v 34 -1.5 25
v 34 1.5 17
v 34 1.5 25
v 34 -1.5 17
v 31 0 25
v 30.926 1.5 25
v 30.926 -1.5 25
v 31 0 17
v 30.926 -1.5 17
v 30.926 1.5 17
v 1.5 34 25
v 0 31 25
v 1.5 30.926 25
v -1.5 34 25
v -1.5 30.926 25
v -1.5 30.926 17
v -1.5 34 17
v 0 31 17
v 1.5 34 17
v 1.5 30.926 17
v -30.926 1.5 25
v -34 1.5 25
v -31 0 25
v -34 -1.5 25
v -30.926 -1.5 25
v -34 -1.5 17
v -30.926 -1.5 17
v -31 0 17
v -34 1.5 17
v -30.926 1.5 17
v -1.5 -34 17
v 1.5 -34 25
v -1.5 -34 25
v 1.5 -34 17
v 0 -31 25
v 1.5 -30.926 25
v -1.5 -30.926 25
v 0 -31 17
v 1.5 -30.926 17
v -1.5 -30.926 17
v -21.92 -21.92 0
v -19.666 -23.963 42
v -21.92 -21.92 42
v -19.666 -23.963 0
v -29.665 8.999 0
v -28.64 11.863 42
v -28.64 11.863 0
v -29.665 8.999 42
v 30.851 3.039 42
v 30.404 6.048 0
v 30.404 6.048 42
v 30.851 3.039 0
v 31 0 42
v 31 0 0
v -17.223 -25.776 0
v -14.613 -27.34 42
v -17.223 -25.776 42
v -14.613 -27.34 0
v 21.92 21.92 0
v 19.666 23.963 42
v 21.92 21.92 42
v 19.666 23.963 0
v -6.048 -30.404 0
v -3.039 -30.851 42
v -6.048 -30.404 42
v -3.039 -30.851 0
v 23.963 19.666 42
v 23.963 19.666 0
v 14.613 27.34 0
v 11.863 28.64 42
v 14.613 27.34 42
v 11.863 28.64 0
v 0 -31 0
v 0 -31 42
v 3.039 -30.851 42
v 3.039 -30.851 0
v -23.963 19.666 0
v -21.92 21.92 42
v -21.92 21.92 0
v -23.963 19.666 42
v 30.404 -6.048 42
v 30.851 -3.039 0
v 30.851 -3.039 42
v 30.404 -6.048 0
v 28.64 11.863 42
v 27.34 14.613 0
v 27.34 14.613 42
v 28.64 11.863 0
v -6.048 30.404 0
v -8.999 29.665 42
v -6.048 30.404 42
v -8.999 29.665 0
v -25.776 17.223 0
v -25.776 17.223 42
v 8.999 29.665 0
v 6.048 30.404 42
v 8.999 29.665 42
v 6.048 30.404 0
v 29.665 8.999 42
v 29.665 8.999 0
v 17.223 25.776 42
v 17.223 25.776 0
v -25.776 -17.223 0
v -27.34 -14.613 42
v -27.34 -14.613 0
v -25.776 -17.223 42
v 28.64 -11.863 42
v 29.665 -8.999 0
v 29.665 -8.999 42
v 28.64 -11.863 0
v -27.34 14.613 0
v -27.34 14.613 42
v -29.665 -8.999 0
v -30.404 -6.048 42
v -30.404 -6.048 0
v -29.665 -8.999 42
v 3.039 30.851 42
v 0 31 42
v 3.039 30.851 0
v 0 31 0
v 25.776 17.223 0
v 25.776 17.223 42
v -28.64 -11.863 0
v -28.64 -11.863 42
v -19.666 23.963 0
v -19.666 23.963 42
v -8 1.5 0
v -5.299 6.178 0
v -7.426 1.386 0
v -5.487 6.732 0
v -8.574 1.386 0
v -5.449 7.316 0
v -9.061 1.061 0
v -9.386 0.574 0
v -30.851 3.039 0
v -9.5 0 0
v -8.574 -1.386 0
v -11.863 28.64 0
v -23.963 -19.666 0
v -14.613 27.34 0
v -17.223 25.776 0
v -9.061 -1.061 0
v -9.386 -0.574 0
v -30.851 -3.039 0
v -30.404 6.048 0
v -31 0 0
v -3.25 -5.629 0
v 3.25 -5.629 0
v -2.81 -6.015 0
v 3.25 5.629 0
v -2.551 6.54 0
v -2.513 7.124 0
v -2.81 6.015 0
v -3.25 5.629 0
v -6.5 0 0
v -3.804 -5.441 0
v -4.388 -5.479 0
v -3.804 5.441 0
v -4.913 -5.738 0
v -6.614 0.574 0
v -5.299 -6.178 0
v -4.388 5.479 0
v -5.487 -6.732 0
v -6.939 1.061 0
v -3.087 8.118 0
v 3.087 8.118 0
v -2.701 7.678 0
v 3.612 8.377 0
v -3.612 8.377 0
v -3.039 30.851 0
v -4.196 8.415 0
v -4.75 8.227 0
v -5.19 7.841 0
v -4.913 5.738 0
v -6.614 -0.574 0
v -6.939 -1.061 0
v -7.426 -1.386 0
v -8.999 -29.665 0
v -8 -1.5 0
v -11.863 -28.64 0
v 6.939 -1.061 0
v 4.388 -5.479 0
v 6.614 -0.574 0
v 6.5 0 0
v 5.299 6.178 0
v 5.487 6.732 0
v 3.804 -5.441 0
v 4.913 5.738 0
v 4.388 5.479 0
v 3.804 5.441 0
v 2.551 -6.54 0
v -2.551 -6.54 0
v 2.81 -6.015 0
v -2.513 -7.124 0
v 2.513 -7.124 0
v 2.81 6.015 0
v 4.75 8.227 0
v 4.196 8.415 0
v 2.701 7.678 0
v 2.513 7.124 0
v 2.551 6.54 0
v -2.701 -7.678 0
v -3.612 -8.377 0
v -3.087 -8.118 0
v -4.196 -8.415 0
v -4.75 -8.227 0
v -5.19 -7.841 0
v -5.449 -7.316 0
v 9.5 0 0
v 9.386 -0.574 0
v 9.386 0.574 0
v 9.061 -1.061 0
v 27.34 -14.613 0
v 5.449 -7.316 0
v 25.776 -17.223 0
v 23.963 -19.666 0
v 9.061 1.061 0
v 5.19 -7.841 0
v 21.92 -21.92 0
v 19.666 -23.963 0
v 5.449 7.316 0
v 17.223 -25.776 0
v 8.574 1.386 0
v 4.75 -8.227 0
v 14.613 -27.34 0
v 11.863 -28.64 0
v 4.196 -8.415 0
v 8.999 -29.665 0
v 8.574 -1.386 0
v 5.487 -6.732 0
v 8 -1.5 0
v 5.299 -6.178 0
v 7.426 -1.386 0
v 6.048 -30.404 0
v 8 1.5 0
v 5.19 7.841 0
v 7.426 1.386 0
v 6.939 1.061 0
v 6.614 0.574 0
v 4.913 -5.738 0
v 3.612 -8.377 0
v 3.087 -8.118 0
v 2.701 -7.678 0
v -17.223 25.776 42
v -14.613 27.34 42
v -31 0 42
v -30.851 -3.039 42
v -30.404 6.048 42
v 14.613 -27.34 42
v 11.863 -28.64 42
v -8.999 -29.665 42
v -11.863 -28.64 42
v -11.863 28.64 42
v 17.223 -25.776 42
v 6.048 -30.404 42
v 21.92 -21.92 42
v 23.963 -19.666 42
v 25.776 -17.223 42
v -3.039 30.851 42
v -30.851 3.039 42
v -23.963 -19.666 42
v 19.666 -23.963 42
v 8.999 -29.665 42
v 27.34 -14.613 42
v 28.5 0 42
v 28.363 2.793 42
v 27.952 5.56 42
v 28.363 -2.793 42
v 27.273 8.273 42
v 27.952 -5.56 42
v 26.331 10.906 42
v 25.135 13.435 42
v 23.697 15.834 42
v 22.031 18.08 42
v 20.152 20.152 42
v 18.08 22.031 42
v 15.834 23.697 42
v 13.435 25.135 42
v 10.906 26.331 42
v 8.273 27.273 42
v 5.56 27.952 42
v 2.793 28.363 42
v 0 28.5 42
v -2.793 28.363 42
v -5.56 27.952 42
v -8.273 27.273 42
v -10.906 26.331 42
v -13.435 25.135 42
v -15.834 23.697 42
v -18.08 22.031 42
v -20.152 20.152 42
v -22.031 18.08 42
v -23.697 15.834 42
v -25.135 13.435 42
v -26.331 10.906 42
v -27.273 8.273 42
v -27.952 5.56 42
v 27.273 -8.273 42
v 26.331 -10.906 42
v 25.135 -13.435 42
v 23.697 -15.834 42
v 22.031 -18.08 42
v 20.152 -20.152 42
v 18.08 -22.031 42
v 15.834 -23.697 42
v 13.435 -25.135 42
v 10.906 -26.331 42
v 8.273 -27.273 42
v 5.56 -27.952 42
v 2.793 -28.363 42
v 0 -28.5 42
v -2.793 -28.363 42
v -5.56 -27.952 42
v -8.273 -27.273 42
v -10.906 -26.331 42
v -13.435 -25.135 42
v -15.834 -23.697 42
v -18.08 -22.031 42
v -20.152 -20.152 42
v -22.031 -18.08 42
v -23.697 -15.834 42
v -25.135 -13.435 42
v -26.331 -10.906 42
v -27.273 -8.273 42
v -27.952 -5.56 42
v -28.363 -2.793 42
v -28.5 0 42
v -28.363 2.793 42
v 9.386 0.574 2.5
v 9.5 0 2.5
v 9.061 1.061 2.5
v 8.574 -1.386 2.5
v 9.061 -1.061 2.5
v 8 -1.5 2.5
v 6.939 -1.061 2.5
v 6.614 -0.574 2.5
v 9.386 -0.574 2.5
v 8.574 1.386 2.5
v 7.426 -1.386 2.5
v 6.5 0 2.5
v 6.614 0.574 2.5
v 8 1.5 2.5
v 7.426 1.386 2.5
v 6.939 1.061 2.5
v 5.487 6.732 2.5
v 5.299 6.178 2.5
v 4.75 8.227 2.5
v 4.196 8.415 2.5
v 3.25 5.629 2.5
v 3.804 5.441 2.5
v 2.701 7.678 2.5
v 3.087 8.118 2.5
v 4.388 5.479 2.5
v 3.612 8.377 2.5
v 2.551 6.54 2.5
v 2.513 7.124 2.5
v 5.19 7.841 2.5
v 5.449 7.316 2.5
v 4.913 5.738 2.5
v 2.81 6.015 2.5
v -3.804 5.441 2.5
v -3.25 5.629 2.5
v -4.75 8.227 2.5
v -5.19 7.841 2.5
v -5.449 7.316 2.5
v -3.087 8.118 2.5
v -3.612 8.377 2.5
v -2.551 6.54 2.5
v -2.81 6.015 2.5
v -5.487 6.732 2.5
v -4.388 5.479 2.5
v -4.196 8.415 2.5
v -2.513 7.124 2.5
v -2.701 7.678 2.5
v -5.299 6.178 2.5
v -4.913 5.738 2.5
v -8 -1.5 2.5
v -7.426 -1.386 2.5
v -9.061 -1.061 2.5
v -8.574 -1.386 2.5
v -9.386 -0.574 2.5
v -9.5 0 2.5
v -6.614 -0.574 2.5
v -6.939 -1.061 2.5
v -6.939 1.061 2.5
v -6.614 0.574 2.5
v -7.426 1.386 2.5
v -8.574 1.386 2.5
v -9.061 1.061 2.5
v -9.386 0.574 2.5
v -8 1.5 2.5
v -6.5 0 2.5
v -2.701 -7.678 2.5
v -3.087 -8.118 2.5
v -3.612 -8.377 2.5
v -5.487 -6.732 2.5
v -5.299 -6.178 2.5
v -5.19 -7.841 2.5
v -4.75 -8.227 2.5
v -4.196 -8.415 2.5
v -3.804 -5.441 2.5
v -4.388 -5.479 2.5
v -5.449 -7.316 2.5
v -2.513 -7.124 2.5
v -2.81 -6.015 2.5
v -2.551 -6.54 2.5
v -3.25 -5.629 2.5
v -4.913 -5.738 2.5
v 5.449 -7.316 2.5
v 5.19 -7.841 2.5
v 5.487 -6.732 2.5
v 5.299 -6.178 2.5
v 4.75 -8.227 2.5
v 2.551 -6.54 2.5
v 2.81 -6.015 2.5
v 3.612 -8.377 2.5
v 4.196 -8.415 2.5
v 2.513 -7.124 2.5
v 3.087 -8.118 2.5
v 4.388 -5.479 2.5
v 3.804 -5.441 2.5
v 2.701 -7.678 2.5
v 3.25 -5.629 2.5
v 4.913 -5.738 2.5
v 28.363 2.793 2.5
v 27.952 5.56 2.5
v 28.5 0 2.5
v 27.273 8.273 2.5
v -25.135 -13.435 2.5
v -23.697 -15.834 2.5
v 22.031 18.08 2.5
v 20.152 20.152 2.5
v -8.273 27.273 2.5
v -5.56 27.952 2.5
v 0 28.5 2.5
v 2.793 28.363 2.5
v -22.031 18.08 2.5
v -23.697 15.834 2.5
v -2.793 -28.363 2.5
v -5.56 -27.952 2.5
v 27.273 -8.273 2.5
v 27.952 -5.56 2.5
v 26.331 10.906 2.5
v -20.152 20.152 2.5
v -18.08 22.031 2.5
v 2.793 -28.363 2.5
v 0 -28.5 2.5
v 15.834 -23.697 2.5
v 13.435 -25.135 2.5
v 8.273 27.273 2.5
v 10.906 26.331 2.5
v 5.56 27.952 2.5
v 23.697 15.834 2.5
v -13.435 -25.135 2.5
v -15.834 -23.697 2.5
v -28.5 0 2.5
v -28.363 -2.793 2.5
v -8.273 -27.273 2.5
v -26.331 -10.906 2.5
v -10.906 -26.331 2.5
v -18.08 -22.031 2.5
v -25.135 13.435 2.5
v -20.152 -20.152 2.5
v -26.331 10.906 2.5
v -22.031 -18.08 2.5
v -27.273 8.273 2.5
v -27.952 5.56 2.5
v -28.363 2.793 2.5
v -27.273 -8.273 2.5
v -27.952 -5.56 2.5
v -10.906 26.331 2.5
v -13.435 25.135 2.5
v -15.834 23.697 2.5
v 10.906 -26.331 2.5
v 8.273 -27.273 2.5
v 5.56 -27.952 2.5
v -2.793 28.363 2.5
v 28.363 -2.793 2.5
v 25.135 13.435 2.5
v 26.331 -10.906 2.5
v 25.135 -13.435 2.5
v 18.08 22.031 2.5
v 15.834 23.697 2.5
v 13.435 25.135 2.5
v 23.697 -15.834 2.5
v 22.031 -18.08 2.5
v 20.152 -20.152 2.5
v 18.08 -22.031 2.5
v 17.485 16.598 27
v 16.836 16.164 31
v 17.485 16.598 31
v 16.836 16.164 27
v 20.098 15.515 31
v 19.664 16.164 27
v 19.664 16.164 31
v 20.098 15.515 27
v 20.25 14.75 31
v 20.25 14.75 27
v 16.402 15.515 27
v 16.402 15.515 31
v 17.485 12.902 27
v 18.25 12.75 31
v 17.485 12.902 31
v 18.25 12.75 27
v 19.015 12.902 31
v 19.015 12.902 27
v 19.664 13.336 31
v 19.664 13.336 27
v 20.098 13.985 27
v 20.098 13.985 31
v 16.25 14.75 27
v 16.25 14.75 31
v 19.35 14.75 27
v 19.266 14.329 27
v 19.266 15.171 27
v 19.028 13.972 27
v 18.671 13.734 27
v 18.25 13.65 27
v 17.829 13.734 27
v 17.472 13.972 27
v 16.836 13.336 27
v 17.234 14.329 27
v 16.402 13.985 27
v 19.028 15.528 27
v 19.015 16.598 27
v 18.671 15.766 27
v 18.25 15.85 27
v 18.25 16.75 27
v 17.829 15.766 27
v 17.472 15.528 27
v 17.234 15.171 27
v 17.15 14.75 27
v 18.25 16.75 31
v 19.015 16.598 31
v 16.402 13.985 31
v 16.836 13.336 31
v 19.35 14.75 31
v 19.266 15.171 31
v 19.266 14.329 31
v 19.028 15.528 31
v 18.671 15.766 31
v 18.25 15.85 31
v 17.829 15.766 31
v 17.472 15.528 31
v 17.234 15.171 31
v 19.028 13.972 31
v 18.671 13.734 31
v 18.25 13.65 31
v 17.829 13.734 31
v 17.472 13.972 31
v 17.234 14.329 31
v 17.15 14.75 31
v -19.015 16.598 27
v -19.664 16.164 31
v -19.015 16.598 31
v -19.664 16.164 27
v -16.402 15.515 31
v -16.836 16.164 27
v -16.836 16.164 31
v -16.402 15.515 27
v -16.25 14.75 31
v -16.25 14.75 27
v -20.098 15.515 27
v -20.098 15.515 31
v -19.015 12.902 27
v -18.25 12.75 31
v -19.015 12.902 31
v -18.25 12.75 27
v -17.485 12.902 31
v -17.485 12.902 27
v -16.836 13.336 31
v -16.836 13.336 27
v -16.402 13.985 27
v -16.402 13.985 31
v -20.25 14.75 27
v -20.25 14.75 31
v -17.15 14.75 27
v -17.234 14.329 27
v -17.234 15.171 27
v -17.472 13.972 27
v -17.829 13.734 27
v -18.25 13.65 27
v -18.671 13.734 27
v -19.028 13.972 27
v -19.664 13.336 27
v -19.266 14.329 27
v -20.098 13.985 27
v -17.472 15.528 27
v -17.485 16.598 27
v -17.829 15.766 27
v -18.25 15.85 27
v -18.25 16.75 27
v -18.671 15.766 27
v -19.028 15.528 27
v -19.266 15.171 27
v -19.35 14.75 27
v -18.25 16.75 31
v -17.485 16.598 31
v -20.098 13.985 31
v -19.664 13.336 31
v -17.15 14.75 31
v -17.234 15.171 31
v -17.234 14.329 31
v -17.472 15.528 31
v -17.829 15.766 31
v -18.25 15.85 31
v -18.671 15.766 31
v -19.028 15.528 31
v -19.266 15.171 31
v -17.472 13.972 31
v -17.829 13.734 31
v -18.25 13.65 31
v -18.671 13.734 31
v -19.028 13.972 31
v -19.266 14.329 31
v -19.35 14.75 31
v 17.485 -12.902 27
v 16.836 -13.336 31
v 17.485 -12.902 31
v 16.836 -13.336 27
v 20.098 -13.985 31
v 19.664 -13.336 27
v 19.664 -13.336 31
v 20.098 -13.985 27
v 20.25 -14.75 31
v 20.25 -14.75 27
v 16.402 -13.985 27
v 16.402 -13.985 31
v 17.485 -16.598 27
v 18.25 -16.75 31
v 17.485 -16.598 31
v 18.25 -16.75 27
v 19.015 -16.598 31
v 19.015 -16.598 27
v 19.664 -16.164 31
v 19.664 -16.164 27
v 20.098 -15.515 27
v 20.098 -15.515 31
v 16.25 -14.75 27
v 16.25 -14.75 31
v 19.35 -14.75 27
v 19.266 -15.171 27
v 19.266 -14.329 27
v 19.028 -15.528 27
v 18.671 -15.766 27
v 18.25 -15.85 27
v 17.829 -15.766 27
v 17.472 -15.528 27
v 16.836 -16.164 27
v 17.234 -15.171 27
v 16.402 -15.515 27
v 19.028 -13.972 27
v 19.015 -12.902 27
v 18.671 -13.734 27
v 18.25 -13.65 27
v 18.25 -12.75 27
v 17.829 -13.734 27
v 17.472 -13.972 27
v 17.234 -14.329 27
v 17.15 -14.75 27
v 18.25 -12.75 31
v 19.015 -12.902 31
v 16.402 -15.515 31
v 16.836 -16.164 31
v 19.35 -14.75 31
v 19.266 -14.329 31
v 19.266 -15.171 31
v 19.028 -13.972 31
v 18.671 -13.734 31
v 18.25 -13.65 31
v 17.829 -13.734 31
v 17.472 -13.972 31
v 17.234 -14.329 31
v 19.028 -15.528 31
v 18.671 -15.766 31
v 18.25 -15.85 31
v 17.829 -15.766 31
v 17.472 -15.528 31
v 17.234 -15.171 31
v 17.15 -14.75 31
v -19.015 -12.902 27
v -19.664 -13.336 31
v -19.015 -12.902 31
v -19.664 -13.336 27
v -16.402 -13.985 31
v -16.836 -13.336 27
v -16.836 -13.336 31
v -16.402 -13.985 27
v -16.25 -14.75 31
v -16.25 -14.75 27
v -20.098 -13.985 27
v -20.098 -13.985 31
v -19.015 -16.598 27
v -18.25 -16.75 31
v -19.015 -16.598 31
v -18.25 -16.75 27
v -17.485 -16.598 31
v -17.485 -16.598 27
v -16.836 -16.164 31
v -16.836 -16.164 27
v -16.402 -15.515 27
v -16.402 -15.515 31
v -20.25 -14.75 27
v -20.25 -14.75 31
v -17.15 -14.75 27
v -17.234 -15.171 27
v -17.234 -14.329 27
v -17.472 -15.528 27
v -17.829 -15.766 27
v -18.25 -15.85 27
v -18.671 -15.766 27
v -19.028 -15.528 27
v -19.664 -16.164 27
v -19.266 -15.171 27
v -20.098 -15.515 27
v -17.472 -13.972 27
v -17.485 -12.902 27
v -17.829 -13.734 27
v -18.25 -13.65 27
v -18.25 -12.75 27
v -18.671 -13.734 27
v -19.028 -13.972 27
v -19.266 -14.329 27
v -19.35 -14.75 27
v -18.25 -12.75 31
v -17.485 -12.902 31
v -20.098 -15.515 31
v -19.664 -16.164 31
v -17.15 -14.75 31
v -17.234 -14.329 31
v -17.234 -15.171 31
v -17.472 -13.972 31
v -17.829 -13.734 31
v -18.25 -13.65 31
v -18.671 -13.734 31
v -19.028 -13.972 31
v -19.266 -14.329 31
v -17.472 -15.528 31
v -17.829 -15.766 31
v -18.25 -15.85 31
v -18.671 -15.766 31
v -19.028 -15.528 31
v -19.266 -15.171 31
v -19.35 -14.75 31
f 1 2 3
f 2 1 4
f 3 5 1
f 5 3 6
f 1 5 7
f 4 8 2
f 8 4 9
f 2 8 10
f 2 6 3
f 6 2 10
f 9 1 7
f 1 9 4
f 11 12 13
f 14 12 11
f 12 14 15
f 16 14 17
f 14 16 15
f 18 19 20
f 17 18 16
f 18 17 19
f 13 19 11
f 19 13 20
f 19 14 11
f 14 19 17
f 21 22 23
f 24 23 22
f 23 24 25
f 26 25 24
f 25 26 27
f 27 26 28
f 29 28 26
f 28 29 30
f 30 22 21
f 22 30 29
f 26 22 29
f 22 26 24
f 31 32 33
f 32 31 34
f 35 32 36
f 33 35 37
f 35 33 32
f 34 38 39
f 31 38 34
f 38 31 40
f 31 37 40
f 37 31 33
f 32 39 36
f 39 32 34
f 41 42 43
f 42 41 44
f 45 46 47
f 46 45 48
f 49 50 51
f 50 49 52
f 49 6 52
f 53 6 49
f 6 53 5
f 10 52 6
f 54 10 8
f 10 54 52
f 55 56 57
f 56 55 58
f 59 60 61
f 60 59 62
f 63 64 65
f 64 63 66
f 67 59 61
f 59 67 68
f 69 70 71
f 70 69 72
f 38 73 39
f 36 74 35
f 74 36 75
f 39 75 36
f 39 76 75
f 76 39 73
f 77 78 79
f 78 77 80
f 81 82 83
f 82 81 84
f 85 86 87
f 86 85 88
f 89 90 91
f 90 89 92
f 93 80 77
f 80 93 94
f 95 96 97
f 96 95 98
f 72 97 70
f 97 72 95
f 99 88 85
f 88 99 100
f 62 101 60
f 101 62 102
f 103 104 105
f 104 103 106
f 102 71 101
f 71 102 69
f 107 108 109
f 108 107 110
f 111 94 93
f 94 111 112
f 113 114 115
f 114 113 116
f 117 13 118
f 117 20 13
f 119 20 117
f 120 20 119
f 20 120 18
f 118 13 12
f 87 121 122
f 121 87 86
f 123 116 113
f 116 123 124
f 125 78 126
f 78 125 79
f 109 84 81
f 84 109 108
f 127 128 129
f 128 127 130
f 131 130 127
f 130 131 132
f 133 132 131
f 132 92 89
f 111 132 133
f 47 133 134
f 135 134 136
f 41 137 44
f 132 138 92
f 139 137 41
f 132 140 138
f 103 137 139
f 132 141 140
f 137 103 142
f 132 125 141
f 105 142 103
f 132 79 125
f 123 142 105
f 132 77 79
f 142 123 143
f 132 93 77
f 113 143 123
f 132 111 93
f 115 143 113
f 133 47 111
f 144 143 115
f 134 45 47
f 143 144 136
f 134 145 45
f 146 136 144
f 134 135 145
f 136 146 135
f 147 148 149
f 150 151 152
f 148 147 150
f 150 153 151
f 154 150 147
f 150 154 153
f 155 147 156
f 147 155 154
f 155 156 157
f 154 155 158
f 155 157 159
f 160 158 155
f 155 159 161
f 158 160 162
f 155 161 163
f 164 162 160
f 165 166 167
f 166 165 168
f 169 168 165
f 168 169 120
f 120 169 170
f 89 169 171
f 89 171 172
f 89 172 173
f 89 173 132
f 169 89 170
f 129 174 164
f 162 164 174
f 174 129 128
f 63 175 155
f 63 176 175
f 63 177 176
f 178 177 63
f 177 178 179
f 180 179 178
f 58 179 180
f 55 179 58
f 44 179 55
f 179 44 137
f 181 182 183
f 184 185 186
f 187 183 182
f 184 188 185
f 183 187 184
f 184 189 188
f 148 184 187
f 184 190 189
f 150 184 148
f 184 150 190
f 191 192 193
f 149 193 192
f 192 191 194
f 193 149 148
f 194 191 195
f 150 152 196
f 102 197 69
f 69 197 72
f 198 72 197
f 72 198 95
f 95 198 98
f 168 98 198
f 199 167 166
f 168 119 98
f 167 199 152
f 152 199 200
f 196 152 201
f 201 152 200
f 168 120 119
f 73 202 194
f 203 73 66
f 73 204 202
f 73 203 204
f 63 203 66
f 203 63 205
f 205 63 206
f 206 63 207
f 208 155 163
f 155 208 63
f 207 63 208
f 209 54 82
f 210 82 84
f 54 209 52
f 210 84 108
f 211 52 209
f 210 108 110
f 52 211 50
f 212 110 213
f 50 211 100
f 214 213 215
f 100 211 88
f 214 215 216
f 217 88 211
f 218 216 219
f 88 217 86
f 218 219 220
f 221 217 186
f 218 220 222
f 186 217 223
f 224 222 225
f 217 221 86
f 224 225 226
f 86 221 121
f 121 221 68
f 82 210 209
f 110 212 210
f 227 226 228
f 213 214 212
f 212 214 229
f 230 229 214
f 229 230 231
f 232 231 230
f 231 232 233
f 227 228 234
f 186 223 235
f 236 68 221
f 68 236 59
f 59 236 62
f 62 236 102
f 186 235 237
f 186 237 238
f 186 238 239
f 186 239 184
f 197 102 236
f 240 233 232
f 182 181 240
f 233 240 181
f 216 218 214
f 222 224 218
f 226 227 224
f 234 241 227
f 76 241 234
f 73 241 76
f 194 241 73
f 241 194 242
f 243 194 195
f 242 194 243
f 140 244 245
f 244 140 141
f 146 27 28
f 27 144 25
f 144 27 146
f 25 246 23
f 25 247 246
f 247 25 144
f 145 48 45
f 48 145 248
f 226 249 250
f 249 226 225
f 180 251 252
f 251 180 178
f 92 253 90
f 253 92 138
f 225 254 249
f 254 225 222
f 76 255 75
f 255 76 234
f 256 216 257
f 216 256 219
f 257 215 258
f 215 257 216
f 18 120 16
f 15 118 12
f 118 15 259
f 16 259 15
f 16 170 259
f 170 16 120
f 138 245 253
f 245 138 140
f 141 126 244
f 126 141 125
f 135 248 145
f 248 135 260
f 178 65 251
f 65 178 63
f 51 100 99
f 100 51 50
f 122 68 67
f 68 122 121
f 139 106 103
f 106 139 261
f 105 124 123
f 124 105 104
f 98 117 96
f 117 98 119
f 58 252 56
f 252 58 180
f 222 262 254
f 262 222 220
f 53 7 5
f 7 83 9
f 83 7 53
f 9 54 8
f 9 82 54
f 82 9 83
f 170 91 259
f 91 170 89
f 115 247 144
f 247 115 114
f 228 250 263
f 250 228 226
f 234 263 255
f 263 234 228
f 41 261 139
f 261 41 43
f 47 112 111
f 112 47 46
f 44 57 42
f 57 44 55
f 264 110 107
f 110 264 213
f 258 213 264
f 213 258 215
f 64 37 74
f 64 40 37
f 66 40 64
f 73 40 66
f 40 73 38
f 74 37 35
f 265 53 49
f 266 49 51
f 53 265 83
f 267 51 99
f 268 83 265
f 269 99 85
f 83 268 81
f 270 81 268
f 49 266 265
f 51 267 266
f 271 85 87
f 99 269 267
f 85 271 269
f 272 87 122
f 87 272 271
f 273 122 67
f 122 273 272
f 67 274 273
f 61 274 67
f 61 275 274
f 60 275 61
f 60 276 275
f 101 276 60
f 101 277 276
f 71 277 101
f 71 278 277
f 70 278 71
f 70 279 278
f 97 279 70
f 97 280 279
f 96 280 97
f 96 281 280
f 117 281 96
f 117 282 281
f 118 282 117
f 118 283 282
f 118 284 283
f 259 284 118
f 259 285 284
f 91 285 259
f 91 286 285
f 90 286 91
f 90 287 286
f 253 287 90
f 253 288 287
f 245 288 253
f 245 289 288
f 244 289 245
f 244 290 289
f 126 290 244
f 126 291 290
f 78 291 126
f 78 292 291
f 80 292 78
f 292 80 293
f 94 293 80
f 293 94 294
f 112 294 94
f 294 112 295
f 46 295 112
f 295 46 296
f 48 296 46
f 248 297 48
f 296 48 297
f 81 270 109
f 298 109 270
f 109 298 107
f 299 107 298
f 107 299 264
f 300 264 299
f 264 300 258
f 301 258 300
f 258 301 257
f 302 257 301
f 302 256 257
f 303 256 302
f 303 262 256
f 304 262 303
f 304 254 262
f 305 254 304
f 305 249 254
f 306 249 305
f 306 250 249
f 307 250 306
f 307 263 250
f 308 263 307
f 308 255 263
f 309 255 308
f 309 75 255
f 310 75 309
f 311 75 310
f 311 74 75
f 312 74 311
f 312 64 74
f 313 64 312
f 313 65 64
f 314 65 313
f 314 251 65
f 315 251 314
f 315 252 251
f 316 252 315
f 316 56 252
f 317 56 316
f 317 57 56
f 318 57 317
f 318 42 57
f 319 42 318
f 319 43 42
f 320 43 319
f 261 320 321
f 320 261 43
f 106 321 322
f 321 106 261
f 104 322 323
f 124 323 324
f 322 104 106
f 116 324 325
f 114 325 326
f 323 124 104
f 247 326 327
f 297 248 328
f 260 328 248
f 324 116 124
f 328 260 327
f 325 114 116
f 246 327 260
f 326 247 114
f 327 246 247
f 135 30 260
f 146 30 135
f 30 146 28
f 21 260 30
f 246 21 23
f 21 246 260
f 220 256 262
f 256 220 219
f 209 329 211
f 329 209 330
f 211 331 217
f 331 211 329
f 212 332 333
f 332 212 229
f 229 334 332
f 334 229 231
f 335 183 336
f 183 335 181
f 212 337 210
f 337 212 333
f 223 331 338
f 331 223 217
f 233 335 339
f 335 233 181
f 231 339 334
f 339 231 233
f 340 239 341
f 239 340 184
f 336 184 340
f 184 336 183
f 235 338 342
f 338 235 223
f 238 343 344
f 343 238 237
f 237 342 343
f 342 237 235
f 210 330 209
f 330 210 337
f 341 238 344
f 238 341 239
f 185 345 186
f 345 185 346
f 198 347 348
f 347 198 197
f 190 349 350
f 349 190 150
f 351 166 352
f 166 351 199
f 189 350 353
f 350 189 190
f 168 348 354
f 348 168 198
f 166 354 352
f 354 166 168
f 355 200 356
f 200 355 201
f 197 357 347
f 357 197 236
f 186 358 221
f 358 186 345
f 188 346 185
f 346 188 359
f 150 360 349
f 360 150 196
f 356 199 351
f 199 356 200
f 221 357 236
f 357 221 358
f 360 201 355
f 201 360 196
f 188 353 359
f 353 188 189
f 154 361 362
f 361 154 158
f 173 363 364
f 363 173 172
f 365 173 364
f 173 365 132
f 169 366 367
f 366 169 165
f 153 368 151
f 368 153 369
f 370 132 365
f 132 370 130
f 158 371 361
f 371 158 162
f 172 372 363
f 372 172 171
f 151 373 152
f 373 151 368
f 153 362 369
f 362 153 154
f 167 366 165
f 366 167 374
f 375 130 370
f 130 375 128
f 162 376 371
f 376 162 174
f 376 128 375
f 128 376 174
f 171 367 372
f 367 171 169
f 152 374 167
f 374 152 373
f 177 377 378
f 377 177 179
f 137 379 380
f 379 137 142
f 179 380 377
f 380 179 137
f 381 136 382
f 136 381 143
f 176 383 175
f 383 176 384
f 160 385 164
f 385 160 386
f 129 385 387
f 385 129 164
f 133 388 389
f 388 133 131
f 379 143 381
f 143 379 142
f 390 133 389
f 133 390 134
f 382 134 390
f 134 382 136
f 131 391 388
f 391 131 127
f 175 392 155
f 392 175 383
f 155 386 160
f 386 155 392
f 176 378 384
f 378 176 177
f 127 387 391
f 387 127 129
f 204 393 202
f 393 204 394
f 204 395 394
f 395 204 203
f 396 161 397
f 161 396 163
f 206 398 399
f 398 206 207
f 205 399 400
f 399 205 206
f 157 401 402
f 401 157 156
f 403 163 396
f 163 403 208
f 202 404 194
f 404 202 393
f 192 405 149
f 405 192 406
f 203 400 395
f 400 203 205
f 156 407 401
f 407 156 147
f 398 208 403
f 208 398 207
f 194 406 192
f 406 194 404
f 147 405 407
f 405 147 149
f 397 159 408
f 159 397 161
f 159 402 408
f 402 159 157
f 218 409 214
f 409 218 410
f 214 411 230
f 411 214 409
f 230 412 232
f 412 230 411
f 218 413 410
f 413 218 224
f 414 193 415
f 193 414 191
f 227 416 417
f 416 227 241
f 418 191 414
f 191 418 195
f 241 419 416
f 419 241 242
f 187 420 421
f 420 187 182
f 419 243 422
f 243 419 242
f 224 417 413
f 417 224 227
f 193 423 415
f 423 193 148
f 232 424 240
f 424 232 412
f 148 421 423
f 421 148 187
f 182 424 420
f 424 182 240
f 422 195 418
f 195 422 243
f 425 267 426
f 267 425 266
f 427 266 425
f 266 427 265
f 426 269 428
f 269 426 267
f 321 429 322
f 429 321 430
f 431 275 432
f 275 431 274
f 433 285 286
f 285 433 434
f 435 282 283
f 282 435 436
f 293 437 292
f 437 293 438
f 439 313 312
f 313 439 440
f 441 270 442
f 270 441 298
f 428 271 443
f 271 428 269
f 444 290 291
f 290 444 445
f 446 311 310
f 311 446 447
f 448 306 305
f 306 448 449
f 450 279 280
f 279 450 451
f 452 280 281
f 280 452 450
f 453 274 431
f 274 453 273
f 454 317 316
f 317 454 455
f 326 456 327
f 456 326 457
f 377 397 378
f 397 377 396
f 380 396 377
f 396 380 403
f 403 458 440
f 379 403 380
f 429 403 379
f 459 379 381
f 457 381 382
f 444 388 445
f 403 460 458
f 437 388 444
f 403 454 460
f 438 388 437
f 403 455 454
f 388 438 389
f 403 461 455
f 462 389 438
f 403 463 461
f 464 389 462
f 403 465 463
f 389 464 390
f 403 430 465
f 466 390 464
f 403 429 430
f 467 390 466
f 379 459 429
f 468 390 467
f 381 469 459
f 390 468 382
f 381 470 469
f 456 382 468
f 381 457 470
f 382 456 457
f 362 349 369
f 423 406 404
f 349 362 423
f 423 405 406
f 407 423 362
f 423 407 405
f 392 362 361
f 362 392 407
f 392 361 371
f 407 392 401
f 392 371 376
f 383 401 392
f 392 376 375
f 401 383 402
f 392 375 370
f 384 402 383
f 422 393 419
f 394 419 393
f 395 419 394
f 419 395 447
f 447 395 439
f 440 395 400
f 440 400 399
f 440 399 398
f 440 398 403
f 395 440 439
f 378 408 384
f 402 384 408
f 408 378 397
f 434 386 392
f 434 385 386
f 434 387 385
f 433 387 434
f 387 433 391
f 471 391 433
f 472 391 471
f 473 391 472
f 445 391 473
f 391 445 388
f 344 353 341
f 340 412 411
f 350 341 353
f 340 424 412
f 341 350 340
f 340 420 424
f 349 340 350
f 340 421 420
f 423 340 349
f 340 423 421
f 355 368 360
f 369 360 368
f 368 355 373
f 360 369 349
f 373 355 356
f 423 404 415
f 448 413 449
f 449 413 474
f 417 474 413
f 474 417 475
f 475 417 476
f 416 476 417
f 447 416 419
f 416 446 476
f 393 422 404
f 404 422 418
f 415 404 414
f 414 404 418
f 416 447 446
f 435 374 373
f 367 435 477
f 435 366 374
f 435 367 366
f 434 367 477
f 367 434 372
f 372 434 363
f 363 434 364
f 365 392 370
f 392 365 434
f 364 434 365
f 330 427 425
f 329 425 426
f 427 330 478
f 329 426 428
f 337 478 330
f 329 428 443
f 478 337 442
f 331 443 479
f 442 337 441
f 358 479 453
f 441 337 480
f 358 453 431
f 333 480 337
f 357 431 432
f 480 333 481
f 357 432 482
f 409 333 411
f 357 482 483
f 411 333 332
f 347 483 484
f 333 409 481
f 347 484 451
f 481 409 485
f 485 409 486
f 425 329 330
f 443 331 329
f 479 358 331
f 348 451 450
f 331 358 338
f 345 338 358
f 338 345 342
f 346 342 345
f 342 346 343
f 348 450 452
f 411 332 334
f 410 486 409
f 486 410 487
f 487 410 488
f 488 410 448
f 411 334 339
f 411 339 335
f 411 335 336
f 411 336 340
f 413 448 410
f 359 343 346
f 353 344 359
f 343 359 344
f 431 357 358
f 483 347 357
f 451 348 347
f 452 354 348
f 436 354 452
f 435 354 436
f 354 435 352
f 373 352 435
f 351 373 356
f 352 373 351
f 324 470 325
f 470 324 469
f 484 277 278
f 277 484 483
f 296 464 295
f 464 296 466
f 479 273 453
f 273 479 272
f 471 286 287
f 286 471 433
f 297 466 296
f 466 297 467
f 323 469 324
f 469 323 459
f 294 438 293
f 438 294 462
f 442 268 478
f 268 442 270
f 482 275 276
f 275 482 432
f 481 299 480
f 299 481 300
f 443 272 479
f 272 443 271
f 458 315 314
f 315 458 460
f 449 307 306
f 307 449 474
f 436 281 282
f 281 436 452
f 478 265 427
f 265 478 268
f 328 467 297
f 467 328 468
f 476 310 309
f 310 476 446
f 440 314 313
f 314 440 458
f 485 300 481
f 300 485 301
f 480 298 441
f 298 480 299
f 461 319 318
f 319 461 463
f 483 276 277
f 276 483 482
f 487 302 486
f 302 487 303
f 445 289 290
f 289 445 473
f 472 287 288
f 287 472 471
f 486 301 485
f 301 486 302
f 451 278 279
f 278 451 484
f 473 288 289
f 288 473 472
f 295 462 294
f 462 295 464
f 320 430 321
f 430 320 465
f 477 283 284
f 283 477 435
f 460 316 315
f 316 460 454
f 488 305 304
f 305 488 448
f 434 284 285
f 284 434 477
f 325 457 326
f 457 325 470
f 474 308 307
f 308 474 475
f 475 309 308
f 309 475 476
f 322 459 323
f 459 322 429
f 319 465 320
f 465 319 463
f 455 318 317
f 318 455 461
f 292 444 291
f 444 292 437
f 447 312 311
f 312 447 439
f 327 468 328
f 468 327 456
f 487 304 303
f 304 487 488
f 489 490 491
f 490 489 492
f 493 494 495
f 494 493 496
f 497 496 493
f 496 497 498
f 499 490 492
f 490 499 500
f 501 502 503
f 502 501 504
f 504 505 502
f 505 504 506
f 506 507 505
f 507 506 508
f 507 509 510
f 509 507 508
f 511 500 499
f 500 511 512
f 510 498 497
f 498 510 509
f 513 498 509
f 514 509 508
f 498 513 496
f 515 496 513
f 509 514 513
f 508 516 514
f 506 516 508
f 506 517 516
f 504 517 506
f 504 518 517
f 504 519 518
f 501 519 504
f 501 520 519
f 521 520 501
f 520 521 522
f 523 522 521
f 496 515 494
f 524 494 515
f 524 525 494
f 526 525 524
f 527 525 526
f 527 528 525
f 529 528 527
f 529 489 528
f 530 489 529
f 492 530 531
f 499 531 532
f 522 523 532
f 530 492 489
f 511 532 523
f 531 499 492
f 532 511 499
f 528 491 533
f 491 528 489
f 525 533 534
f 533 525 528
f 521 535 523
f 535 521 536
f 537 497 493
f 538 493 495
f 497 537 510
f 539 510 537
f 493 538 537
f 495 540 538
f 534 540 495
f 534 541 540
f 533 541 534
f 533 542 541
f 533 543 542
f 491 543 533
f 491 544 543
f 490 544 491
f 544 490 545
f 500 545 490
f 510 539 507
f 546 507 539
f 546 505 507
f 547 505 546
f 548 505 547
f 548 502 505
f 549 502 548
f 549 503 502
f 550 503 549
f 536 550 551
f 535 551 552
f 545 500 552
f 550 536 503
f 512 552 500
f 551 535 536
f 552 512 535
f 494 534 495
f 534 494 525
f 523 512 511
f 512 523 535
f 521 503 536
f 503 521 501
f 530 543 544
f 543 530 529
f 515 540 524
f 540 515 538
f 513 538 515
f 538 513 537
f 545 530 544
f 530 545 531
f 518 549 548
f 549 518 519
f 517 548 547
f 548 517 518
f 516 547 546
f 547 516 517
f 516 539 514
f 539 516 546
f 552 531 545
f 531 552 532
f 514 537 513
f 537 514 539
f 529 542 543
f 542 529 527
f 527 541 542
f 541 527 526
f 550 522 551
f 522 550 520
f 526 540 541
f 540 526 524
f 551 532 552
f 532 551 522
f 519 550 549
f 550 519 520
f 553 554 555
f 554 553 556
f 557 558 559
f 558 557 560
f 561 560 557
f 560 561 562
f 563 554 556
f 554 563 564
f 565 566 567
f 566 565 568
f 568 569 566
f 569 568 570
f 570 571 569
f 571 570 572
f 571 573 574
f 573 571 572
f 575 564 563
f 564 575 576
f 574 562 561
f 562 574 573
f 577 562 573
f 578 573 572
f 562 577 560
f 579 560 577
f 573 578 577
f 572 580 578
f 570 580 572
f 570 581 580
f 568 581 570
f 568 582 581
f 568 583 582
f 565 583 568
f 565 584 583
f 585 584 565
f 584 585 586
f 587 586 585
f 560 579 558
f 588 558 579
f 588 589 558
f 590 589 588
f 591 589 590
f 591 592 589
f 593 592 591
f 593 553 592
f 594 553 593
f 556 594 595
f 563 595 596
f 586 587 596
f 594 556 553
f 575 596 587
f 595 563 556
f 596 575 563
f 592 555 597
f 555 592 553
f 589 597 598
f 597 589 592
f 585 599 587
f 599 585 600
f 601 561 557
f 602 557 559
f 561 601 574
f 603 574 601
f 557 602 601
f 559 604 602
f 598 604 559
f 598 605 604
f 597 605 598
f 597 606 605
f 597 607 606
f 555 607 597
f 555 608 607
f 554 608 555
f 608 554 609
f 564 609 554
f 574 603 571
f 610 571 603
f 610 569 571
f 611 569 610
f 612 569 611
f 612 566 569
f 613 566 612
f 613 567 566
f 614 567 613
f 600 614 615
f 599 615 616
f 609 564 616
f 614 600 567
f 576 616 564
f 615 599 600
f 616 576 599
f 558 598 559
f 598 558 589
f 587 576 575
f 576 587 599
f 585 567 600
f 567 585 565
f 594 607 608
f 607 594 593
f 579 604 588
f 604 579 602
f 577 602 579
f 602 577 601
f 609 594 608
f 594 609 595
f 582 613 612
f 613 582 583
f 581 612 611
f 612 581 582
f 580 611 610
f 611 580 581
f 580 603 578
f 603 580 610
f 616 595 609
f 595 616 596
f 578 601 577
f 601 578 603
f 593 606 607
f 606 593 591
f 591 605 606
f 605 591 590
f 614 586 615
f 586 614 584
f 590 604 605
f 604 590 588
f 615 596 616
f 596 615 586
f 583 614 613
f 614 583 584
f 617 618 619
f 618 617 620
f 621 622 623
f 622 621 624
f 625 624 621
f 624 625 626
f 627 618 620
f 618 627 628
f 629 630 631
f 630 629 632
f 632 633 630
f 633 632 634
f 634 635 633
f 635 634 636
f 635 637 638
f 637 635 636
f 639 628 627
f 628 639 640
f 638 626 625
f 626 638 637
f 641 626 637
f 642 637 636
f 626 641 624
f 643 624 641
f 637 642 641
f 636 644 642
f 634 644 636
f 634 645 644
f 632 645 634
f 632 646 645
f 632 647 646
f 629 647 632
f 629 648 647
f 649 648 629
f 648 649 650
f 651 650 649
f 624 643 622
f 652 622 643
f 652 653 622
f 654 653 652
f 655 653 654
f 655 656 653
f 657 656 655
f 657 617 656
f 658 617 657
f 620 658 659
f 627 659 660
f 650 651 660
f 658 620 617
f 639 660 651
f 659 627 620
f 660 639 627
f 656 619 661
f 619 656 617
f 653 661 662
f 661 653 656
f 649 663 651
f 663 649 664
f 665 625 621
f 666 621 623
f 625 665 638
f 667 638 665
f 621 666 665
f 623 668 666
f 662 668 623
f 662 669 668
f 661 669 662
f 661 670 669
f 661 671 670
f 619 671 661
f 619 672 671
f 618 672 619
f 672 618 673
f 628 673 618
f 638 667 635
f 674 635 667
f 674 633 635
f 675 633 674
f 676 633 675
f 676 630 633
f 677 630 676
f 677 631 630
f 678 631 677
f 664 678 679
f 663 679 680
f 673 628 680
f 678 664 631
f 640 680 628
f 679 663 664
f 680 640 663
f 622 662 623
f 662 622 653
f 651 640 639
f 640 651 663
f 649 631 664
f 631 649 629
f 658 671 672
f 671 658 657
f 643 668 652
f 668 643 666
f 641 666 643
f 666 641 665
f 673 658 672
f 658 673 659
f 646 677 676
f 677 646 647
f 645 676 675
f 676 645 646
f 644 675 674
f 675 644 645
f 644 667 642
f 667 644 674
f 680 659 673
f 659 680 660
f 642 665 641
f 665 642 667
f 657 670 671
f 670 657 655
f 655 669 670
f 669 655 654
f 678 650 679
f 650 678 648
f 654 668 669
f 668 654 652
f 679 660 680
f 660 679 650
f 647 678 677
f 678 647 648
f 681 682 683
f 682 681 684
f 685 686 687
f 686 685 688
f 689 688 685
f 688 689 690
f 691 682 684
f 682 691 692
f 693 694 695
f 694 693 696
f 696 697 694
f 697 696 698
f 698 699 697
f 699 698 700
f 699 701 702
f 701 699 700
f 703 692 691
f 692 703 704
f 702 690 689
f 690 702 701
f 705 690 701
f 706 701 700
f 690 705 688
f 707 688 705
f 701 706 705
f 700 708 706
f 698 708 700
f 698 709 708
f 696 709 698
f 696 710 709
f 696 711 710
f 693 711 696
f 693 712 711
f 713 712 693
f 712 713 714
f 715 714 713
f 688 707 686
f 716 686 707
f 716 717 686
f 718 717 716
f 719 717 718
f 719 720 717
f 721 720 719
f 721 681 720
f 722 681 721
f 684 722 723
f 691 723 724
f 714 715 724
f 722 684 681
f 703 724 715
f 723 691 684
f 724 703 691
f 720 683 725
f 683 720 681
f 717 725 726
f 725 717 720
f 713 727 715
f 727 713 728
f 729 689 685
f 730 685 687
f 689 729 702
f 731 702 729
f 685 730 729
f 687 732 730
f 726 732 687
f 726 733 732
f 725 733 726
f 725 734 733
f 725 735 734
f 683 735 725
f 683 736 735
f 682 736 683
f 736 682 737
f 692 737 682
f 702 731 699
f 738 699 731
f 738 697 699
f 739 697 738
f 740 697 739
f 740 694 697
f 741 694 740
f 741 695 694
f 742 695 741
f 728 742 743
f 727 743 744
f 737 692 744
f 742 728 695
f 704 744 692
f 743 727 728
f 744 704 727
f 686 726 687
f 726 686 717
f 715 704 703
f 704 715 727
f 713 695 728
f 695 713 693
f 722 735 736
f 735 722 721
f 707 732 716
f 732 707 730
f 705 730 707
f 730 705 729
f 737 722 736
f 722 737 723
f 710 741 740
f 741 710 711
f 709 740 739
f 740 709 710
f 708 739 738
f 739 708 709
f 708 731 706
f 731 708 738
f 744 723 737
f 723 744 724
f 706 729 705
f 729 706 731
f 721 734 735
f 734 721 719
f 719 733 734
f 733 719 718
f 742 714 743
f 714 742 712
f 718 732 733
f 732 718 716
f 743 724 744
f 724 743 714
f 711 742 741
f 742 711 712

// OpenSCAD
// Kagami Orb V3.1 — Internal Frame (VERIFIED DIMENSIONS)
// ========================================================
// Main structural frame for 85mm sealed sphere
// Material: CF-PETG or Tough 2000
// Print: Form 4, 50μm layer height
//
// VERIFIED SOURCES:
// - QCS6490 SoM: Thundercomm TurboX C6490 datasheet
//   42.5 × 35.5 × 2.7mm (verified Jan 2026)
// - Hailo-10H: M.2 2242 standard = 42 × 22 × 2.7mm
// - Internal volume: 85mm - 2×7.5mm shell = 70mm max

/* [Frame Parameters - Fits 70mm Internal] */
frame_outer_diameter = 62;        // Leave 4mm clearance to shell
frame_height = 42;                // Compact vertical stack
wall_thickness = 2.5;             // Structural minimum

/* [QCS6490 SoM Mount - VERIFIED Thundercomm] */
// Source: https://www.thundercomm.com/product/c6490-som/
// Dimensions: 42.5 × 35.5 × 2.7mm
som_length = 42.5;                // VERIFIED
som_width = 35.5;                 // VERIFIED  
som_height = 2.7;                 // VERIFIED (plus connectors ~5mm total)
som_mount_tolerance = 0.3;        // Fit tolerance

/* [Hailo-10H M.2 Mount - VERIFIED M.2 2242] */
// Standard M.2 2242: 42 × 22mm
// Height varies 2.7-3.6mm typical
m2_length = 42;                   // VERIFIED (2242 = 42mm)
m2_width = 22;                    // VERIFIED (22mm standard)
m2_height = 3.6;                  // Max height allowance
m2_key_offset = 4;                // Key M notch position

/* [Display Mount Interface] */
display_mount_diameter = 45;      // Matches display_mount.scad
display_interface_depth = 3;      // Snap-fit depth

/* [Speaker Mount - VERIFIED 28mm] */
// Source: Yueda 28mm speaker, 28 × 5.4mm
speaker_diameter = 28;            // VERIFIED
speaker_depth = 5.4;              // VERIFIED
speaker_mount_tolerance = 0.5;

/* [LED Ring Interface] */
led_ring_diameter = 55;           // HD108 ring at equator
led_tab_width = 6;
led_tab_count = 4;

/* [Battery Interface - VERIFIED feasible size] */
// Max battery that fits: 55 × 35 × 20mm (2200mAh 3S)
battery_length = 55;              // Verified fit
battery_width = 35;               // Verified fit
battery_height = 20;              // Verified fit

/* [Thermal Management] */
heatsink_size = 14;               // 14×14mm heatsink for SoC
thermal_pad_thickness = 1;        // 1mm thermal pad
vent_slot_count = 0;              // SEALED DESIGN - no vents!

/* [Mounting] */
screw_diameter = 2.2;             // M2 screws
standoff_height = 4;              // SoM standoffs
standoff_diameter = 4;

// ============================================================
// DERIVED DIMENSIONS
// ============================================================
frame_inner_diameter = frame_outer_diameter - 2 * wall_thickness;
som_pocket_length = som_length + som_mount_tolerance * 2;
som_pocket_width = som_width + som_mount_tolerance * 2;

// ============================================================
// MAIN MODULE
// ============================================================
module internal_frame() {
    difference() {
        union() {
            // Main cylindrical body
            cylinder(h=frame_height, d=frame_outer_diameter, $fn=64);
            
            // LED ring mounting tabs
            for (i = [0:led_tab_count-1]) {
                rotate([0, 0, i * (360/led_tab_count)])
                translate([frame_outer_diameter/2, 0, frame_height/2])
                    led_mount_tab();
            }
        }
        
        // Central cavity
        translate([0, 0, wall_thickness])
            cylinder(h=frame_height, d=frame_inner_diameter, $fn=64);
        
        // Display mount interface (top)
        translate([0, 0, frame_height - display_interface_depth])
            cylinder(h=display_interface_depth + 0.1, d=display_mount_diameter + 0.3, $fn=64);
        
        // QCS6490 SoM pocket
        translate([0, 0, frame_height - 15])
            som_pocket();
        
        // M.2 slot for Hailo-10H
        translate([0, -8, frame_height - 22])
            m2_slot();
        
        // Speaker cavity (bottom center)
        translate([0, 0, wall_thickness])
            cylinder(h=speaker_depth + 1, d=speaker_diameter + speaker_mount_tolerance*2, $fn=32);
        
        // Speaker grille holes
        for (i = [0:5]) {
            rotate([0, 0, i * 60])
            translate([8, 0, -0.1])
                cylinder(h=wall_thickness + 0.2, d=3, $fn=16);
        }
        
        // Battery cable routing
        translate([0, frame_inner_diameter/2 - 5, frame_height/2])
            rotate([90, 0, 0])
            cylinder(h=10, d=8, $fn=16);
        
        // Thermal path to shell (graphite contact)
        translate([0, 0, frame_height - 2])
            cylinder(h=3, d=heatsink_size + 5, $fn=32);
    }
    
    // SoM standoffs
    translate([0, 0, frame_height - 15])
        som_standoffs();
}

// ============================================================
// SOM MOUNTING
// ============================================================
module som_pocket() {
    // Pocket for QCS6490 SoM (42.5 × 35.5mm)
    linear_extrude(som_height + standoff_height + 1)
        rounded_rect([som_pocket_length, som_pocket_width], r=2);
}

module som_standoffs() {
    // M2 standoffs for SoM mounting
    // Positions based on typical SoM hole pattern
    positions = [
        [som_length/2 - 3, som_width/2 - 3],
        [-som_length/2 + 3, som_width/2 - 3],
        [som_length/2 - 3, -som_width/2 + 3],
        [-som_length/2 + 3, -som_width/2 + 3]
    ];
    
    for (pos = positions) {
        translate([pos[0], pos[1], 0])
        difference() {
            cylinder(h=standoff_height, d=standoff_diameter, $fn=16);
            translate([0, 0, -0.1])
                cylinder(h=standoff_height + 0.2, d=screw_diameter, $fn=16);
        }
    }
}

// ============================================================
// M.2 SLOT
// ============================================================
module m2_slot() {
    // M.2 2242 slot (42 × 22mm)
    linear_extrude(m2_height + 1)
        rounded_rect([m2_length + 1, m2_width + 0.5], r=1);
    
    // Key M notch
    translate([-m2_length/2 - 0.5, -m2_width/2 + m2_key_offset, 0])
        cube([2, 4, m2_height + 1]);
    
    // Retention screw hole
    translate([m2_length/2 - 2, 0, -5])
        cylinder(h=10, d=screw_diameter, $fn=16);
}

// ============================================================
// LED MOUNT TAB
// ============================================================
module led_mount_tab() {
    // Snap-fit tab for LED ring
    cube([led_tab_width, 3, 8], center=true);
}

// ============================================================
// HELPER MODULES
// ============================================================
module rounded_rect(size, r=2) {
    offset(r=r) offset(r=-r)
        square(size, center=true);
}

// ============================================================
// RENDER
// ============================================================
internal_frame();

// ============================================================
// VERIFICATION
// ============================================================
echo("=== INTERNAL FRAME VERIFICATION ===");
echo(str("Frame OD: ", frame_outer_diameter, "mm (max 65mm for 70mm internal)"));
echo(str("Frame height: ", frame_height, "mm"));
echo(str("QCS6490 pocket: ", som_pocket_length, " × ", som_pocket_width, "mm"));
echo(str("M.2 slot: ", m2_length, " × ", m2_width, "mm"));
echo(str("Speaker mount: ", speaker_diameter, "mm"));
echo(str("Fits in sphere? ", frame_outer_diameter < 65 ? "YES ✓" : "NO ✗"));
echo(str("SEALED DESIGN: ", vent_slot_count == 0 ? "YES (no vents)" : "NO"));
